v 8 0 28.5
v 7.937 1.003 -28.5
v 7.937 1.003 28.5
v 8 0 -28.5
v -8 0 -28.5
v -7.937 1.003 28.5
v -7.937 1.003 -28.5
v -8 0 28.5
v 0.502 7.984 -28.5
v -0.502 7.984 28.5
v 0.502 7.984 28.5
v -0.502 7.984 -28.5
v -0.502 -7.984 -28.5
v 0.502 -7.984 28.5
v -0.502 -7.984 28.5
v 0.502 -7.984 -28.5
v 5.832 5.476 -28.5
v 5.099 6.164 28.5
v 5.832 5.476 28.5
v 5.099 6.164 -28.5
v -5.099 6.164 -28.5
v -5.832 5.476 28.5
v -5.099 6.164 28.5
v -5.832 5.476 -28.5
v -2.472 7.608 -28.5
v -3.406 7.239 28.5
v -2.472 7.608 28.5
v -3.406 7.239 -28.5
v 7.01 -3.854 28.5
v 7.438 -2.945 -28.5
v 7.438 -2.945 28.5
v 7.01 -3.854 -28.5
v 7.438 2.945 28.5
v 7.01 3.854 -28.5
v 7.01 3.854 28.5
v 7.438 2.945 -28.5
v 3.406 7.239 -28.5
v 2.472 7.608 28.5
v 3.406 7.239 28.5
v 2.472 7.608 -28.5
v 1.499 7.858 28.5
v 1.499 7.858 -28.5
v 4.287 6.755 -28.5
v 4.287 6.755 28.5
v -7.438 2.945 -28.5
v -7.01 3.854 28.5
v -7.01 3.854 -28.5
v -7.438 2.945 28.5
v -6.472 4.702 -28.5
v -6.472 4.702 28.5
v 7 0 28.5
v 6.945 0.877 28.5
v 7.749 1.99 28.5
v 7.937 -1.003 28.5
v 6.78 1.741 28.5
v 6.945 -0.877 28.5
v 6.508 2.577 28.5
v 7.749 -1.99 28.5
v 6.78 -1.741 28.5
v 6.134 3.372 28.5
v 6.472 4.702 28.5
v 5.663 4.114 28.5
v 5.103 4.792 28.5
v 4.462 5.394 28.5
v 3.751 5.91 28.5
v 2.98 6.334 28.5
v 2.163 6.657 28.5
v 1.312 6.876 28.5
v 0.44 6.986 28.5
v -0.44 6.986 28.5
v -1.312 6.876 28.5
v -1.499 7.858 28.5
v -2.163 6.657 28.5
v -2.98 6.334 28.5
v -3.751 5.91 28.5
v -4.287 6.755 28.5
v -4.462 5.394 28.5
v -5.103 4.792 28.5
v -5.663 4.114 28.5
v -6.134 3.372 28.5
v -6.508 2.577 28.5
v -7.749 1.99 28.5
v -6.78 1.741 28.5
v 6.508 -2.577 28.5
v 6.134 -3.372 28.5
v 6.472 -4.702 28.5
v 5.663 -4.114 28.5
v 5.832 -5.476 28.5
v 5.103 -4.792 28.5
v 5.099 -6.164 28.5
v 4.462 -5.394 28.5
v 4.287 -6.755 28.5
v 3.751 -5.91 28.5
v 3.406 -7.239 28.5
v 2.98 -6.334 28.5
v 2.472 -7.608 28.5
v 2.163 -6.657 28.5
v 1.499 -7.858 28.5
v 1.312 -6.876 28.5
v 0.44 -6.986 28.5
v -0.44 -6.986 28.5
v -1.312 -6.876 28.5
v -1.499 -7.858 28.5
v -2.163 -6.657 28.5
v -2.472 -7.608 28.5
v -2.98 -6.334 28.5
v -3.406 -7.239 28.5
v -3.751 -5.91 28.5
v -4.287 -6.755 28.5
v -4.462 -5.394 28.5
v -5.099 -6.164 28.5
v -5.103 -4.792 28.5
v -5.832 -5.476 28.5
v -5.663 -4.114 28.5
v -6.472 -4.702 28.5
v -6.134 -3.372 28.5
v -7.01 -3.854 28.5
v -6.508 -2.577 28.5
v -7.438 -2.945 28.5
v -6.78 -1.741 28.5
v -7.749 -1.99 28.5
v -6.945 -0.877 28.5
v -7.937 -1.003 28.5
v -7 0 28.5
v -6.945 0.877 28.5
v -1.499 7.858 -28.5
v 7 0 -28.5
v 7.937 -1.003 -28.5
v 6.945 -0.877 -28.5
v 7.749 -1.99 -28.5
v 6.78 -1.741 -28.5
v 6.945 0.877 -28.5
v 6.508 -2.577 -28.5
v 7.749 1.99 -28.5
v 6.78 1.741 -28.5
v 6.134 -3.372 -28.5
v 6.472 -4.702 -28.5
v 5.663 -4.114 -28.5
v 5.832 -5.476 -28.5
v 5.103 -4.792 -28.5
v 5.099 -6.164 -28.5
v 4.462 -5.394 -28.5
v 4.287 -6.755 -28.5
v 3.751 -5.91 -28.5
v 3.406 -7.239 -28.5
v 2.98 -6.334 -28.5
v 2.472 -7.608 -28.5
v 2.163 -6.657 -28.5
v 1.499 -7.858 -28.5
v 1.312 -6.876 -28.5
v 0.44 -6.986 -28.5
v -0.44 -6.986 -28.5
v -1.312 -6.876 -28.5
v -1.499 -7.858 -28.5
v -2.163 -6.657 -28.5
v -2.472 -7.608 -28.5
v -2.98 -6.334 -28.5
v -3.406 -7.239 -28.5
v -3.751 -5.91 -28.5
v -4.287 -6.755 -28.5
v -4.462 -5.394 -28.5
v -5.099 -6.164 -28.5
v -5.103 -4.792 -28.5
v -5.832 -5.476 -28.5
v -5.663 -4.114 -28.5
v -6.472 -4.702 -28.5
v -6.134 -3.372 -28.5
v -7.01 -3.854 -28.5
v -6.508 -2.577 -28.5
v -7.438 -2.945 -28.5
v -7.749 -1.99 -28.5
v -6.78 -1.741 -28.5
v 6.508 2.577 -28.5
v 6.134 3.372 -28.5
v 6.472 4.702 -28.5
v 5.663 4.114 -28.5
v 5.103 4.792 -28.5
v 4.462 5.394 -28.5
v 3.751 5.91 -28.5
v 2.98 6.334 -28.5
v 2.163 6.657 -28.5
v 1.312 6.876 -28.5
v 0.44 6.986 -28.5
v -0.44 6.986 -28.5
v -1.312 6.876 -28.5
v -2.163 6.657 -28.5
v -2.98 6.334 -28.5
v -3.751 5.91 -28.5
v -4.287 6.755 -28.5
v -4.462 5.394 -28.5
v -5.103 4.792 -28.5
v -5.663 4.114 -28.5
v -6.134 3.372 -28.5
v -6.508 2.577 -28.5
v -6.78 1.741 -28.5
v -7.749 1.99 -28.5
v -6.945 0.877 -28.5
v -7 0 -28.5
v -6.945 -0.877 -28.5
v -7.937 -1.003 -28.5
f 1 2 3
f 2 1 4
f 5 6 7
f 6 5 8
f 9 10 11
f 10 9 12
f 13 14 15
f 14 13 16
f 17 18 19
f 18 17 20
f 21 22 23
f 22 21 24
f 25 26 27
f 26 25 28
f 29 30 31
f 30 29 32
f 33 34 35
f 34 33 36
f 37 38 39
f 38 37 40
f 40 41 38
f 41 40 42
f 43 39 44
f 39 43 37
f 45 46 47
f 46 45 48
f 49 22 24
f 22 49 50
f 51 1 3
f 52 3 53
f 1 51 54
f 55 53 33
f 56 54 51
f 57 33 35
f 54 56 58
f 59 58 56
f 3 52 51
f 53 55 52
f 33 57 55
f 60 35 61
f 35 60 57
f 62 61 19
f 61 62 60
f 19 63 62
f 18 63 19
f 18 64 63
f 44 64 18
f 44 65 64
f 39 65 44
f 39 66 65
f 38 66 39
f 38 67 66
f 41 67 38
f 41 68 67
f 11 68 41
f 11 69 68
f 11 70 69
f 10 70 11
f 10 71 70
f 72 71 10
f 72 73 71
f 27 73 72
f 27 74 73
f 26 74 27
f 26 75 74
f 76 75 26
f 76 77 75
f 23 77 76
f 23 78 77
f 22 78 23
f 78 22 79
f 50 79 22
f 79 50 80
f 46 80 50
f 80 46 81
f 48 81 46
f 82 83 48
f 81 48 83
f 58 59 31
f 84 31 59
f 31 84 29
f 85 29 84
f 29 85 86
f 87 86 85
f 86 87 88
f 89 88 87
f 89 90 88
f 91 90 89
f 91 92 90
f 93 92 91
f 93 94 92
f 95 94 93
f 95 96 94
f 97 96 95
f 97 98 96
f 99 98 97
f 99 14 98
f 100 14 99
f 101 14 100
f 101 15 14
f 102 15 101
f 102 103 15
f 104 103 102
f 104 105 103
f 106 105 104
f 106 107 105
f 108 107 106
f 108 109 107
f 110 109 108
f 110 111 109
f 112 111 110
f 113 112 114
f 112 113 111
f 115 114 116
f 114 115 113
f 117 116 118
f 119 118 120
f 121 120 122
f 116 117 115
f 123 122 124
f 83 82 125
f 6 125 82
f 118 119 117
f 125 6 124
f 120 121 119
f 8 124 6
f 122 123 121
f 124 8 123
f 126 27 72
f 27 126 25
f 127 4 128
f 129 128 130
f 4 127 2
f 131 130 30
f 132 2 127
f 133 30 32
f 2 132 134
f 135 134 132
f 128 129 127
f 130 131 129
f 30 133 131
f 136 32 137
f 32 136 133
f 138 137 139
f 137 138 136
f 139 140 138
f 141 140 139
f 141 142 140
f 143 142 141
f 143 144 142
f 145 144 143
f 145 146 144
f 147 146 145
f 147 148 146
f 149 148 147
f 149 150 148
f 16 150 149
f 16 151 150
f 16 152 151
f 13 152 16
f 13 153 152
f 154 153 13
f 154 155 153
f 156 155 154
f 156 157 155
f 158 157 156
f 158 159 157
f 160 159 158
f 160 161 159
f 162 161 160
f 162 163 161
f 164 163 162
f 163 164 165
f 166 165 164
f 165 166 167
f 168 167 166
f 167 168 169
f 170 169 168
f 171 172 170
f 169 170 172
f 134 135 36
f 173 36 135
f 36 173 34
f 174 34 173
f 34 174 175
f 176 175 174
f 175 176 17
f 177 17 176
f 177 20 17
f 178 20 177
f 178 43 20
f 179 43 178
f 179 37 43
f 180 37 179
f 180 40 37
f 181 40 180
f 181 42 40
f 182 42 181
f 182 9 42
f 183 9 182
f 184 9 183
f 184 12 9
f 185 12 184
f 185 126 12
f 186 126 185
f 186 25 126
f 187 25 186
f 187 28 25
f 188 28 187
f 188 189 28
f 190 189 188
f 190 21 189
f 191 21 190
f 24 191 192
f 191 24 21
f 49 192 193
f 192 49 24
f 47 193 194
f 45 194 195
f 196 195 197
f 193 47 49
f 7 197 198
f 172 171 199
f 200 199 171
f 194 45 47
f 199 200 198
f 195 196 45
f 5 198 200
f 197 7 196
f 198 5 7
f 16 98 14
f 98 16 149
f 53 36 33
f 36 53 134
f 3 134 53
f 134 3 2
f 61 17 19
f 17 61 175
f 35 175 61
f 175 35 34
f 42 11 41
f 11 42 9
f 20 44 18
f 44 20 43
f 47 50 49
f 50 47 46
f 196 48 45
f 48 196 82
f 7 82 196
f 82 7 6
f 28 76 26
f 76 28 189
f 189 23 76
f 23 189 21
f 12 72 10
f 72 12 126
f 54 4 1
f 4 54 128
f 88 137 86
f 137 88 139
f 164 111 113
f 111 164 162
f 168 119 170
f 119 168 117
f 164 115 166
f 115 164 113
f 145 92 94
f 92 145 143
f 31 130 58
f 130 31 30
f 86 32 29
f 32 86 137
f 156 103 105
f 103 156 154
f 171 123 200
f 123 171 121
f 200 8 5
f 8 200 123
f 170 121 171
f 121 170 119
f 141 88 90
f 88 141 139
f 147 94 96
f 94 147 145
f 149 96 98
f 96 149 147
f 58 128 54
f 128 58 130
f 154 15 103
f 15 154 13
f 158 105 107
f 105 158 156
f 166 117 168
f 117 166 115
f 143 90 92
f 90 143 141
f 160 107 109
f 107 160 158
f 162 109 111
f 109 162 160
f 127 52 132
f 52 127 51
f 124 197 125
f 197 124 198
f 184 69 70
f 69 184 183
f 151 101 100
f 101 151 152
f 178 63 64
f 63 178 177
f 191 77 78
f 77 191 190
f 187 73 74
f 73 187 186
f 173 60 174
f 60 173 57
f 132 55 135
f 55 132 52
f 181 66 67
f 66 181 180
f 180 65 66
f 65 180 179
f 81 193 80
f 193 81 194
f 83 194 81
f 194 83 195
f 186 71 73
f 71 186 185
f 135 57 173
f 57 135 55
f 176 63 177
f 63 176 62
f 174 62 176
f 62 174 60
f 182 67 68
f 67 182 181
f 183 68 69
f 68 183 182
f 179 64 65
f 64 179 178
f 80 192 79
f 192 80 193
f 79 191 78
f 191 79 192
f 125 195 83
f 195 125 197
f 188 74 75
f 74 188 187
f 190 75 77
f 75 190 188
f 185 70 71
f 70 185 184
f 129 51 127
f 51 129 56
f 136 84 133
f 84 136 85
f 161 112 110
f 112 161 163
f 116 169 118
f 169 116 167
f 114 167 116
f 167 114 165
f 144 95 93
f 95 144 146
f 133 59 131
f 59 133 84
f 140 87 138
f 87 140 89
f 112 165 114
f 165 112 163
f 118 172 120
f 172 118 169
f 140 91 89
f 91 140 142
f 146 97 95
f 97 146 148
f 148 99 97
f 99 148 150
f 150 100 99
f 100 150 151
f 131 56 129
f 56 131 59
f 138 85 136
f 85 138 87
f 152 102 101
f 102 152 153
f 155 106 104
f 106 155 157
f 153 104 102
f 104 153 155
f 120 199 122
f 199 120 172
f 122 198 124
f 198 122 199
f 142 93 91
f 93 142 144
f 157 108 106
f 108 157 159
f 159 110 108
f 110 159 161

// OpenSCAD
$fn = 50;


difference() {
	union() {
		translate(v = [0, 0, -28.5000000000]) {
			cylinder(h = 57, r = 8.0000000000);
		}
	}
	union() {
		translate(v = [0, 0, -100.0000000000]) {
			cylinder(h = 200, r = 7);
		}
	}
}
